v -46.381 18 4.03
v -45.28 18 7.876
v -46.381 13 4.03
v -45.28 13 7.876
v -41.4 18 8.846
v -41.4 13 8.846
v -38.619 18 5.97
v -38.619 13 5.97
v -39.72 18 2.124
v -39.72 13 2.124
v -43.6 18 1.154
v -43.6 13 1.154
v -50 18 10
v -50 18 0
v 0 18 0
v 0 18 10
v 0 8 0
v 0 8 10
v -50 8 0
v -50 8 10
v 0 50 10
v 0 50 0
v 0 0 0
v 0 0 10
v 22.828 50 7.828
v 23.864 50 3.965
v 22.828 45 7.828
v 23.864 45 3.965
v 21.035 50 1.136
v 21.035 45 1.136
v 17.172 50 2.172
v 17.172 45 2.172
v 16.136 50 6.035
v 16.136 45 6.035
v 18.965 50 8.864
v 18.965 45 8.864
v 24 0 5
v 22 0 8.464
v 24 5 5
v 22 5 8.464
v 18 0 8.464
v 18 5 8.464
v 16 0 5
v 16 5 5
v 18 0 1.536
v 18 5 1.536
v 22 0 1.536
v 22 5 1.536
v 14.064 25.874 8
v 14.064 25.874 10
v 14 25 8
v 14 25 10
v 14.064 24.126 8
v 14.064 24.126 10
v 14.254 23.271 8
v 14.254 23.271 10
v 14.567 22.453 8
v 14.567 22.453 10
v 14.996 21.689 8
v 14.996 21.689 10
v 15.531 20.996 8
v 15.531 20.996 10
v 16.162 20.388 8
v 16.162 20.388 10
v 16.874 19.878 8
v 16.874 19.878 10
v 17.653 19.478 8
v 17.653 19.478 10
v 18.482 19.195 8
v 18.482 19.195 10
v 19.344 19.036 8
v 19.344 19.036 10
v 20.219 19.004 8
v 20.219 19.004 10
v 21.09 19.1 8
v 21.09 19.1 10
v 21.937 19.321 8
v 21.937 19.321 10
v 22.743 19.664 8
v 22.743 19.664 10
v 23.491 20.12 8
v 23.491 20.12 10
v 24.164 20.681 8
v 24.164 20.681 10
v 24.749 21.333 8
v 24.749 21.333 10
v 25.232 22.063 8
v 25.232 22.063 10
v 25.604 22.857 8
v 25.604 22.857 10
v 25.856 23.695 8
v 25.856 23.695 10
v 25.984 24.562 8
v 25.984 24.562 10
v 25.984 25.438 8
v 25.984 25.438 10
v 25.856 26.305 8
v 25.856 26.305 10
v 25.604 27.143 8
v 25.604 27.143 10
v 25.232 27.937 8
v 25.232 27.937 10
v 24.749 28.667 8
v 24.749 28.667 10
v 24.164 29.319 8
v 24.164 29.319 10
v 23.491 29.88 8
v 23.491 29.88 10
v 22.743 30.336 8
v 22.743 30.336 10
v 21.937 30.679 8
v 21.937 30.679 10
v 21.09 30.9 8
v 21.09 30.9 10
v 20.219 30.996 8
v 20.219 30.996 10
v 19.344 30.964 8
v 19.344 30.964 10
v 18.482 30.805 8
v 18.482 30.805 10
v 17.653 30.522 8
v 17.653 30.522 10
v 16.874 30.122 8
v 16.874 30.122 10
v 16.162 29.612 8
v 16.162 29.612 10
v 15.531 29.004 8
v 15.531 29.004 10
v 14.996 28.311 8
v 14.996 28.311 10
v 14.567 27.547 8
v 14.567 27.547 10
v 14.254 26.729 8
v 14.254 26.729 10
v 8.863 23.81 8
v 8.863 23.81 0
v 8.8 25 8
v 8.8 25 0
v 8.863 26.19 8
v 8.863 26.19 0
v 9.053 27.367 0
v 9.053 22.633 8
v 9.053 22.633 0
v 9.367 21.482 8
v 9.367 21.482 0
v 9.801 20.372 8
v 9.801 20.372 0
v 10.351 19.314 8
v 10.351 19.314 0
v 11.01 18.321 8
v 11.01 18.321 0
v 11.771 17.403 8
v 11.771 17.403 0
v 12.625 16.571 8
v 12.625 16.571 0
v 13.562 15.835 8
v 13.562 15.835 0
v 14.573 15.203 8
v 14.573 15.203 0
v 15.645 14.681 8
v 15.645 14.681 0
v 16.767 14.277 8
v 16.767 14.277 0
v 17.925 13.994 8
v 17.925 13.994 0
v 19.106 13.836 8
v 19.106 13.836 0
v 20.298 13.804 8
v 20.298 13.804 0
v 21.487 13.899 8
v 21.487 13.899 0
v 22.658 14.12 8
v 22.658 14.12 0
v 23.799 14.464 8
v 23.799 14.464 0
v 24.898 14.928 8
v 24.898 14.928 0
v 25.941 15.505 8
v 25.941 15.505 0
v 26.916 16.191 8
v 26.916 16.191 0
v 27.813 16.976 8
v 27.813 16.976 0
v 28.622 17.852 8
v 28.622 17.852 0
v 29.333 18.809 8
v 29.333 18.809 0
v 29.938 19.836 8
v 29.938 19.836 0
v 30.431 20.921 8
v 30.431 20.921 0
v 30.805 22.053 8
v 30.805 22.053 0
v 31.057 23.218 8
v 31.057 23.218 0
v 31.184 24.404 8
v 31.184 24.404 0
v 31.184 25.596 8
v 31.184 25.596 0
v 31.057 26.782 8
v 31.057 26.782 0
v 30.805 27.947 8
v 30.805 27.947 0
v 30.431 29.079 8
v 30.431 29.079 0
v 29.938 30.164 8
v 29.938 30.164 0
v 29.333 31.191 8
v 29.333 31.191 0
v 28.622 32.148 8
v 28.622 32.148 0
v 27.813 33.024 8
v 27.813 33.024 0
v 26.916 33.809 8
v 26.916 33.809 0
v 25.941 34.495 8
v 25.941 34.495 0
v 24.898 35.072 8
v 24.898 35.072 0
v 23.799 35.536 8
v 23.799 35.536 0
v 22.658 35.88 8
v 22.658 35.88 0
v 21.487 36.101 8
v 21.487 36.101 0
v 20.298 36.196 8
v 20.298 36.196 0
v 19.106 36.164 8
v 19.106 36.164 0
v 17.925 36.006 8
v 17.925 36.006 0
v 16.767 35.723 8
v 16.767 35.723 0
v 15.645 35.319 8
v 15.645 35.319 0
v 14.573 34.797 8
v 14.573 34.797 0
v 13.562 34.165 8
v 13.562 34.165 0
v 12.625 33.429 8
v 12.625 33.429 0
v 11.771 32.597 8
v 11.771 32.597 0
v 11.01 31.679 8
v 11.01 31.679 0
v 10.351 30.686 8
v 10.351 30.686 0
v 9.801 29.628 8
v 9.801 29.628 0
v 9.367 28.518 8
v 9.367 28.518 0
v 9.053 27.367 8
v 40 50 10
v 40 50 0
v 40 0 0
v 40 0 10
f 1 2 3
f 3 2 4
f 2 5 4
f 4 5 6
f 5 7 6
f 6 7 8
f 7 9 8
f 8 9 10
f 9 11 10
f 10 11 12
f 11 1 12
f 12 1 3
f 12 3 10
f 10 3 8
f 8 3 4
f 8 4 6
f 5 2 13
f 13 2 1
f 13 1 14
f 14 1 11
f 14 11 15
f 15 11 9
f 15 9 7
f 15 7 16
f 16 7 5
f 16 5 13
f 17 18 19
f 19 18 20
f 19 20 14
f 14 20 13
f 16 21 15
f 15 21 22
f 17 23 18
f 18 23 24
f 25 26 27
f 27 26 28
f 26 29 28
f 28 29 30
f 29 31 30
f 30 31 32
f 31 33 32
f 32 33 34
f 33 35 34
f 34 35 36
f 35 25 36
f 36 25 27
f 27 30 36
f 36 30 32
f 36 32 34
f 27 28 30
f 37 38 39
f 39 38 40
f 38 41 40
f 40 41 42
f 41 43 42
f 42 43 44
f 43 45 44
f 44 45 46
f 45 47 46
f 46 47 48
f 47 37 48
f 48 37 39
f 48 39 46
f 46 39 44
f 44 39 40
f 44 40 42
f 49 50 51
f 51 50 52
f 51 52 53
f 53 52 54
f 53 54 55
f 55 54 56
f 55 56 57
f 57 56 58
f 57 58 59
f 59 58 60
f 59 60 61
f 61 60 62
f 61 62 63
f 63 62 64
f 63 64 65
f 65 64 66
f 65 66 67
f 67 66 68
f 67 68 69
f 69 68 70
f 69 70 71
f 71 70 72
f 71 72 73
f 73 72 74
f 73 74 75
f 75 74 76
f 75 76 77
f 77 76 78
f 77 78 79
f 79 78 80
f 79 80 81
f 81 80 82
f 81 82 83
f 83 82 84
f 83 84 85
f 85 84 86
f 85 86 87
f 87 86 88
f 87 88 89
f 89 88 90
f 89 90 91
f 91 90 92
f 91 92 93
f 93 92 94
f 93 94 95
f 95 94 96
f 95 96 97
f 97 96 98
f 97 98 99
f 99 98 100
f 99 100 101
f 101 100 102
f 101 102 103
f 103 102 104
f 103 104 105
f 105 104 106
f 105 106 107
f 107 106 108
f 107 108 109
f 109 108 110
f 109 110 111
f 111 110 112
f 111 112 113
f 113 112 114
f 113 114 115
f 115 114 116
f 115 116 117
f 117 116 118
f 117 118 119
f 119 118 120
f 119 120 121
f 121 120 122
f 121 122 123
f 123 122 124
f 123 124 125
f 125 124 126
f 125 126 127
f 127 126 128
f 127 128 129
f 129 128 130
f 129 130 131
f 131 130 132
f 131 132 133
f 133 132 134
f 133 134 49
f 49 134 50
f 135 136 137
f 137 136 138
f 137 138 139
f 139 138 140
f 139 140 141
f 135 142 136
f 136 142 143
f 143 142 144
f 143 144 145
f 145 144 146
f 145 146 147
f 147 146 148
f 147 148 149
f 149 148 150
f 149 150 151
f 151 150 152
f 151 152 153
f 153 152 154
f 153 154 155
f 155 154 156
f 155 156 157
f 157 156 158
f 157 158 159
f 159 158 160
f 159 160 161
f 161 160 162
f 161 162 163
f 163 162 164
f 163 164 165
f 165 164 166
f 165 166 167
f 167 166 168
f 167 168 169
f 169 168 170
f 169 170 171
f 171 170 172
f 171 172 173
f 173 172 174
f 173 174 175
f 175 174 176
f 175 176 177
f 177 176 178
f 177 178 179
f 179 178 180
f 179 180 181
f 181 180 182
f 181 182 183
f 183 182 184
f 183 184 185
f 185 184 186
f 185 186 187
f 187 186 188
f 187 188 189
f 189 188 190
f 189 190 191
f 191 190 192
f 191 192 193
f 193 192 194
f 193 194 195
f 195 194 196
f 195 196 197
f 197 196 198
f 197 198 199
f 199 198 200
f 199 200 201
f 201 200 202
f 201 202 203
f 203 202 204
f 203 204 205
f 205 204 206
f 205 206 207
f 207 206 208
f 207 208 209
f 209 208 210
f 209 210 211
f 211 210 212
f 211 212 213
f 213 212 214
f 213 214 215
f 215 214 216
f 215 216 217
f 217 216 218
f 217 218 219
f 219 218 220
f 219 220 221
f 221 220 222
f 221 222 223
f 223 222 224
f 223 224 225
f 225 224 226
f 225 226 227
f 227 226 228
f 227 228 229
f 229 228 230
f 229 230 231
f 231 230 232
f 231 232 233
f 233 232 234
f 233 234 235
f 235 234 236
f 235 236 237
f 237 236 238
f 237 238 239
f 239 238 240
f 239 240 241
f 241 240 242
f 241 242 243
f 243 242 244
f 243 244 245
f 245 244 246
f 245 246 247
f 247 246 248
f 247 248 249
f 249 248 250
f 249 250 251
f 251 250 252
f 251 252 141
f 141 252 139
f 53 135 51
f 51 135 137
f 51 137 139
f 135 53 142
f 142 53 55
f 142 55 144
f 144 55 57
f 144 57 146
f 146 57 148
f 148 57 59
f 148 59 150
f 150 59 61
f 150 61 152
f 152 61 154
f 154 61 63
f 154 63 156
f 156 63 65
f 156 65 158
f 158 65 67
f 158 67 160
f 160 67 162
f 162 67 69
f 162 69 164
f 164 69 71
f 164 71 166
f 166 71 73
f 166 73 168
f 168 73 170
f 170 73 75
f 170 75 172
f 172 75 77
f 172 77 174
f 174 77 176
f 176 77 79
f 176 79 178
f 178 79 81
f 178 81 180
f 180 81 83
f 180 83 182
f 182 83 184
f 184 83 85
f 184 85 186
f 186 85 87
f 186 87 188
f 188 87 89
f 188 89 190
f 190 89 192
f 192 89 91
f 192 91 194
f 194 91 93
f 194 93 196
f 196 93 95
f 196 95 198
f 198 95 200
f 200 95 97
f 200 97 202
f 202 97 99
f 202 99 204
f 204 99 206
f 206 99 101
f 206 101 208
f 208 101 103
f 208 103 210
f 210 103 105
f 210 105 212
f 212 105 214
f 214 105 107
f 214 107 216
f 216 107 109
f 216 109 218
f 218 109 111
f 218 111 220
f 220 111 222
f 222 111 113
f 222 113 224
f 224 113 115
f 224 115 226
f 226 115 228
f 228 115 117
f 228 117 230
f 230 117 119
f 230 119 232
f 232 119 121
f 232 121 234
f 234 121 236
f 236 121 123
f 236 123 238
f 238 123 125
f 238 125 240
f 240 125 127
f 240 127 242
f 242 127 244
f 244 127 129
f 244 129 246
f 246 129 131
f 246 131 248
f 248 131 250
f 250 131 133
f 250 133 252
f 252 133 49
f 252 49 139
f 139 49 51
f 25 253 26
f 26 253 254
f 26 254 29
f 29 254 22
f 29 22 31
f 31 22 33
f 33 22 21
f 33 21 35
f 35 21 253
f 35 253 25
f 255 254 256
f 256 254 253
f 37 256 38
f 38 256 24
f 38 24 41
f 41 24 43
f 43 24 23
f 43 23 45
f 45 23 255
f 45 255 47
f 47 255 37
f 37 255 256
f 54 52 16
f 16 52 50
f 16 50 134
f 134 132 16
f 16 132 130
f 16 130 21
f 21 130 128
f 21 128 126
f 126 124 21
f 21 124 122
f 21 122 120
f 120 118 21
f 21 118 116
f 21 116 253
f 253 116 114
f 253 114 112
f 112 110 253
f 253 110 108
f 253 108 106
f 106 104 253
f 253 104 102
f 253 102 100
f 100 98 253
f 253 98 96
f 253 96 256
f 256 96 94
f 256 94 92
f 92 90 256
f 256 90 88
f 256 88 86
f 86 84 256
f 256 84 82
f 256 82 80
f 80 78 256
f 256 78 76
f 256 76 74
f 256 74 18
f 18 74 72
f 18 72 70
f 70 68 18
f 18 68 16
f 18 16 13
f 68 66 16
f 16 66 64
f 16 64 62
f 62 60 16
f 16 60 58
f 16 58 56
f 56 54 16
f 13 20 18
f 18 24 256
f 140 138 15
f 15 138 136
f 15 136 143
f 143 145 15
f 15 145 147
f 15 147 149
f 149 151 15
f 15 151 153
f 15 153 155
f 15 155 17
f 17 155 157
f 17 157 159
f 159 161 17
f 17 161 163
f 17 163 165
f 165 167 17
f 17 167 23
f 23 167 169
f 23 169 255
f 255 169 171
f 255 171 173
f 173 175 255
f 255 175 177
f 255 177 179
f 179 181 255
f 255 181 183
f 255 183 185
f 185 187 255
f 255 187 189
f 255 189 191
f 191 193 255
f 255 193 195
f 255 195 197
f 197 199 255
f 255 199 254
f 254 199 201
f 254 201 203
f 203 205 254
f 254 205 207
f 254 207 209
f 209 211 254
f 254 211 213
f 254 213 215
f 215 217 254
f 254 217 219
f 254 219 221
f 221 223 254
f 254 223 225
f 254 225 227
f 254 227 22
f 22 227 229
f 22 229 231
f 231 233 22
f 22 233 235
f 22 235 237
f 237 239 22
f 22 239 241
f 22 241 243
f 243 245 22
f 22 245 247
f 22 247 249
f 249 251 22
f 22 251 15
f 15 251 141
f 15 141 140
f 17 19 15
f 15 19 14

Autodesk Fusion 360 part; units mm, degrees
sketch "Top" plane through (0, 0, 0) normal (0, 0, 1) x (1, 0, 0)
  line L0 (0, 0) -> (40, 0)
  line L1 (40, 0) -> (40, 50)
  line L2 (40, 50) -> (0, 50)
  line L3 (0, 50) -> (0, 0)
  circle A0 centre (20, 25) radius 11.2
  circle A1 centre (20, 25) radius 6
  dimension "d6" = 40
  dimension "d7" = 50
  dimension "d11" = 22.4
  dimension "d12" = 25
  dimension "d13" = 20
  dimension "d27" = 12
extrude "Extrude1" add sketch "Top" along normal blind 10 contours L0 L1 L2 L3 | A0 | A1
extrude "Extrude2" cut sketch "Top" along normal blind 8 contours A0 | A1
extrude "Extrude5" cut sketch "Top" along normal blind 110 contours A1
sketch "Sketch3" plane through (0, 0, 0) normal (0, -1, 0) x (1, 0, 0)
  line L0 (0, 0) -> (40, 0)
  line L1 (40, 0) -> (40, 10)
  line L2 (40, 10) -> (0, 10)
  line L3 (0, 10) -> (0, 0)
  line L4 (24, 5) -> (22, 8.4641)
  line L5 (22, 8.4641) -> (18, 8.4641)
  line L6 (18, 8.4641) -> (16, 5)
  line L7 (16, 5) -> (18, 1.5359)
  line L8 (18, 1.5359) -> (22, 1.5359)
  line L9 (22, 1.5359) -> (24, 5)
  point P0 (20, 5)
  dimension "d34" = 4
  dimension "d37" = 20
  dimension "d38" = 5
extrude "Extrude6" cut sketch "Sketch3" against normal blind 5 contours L4 L5 L6 L7 L8 L9
sketch "Sketch4" plane through (0, 50, 0) normal (0, 1, 0) x (-1, 0, 0)
  line L0 (-40, 0) -> (0, 0)
  line L1 (0, 0) -> (0, 10)
  line L2 (0, 10) -> (-40, 10)
  line L3 (-40, 10) -> (-40, 0)
  line L4 (-22.8284, 7.8284) -> (-23.8637, 3.9647)
  line L5 (-23.8637, 3.9647) -> (-21.0353, 1.1363)
  line L6 (-21.0353, 1.1363) -> (-17.1716, 2.1716)
  line L7 (-17.1716, 2.1716) -> (-16.1363, 6.0353)
  line L8 (-16.1363, 6.0353) -> (-18.9647, 8.8637)
  line L9 (-18.9647, 8.8637) -> (-22.8284, 7.8284)
  point P0 (-20, 5)
  dimension "d39" = 4
  dimension "d42" = 20
  dimension "d43" = 5
extrude "Extrude7" cut sketch "Sketch4" against normal blind 5 contours L4 L5 L6 L7 L8 L9
sketch "Sketch5" plane through (0, 0, 0) normal (-1, 0, 0) x (0, -1, 0)
  line L0 (-50, 0) -> (0, 0)
  line L1 (0, 0) -> (0, 10)
  line L2 (0, 10) -> (-50, 10)
  line L3 (-50, 10) -> (-50, 0)
  line L4 (-18, 10) -> (-8, 10)
  line L5 (-8, 10) -> (-8, 0)
  line L6 (-8, 0) -> (-18, 0)
  line L7 (-18, 0) -> (-18, 10)
  dimension "d50" = 10
  dimension "d51" = 10
  dimension "d52" = 32
extrude "Extrude8" add sketch "Sketch5" along normal blind 50 contours L0 L2 L4 L5 L6 L7
sketch "Sketch9" plane through (0, 18, 0) normal (0, 1, 0) x (-1, 0, 0)
  line L0 (0, 10) -> (0, 0)
  line L1 (0, 0) -> (50, 0)
  line L2 (50, 0) -> (50, 10)
  line L3 (50, 10) -> (0, 10)
  line L4 (46.3806, 4.0299) -> (45.2805, 7.8756)
  line L5 (45.2805, 7.8756) -> (41.3999, 8.8457)
  line L6 (41.3999, 8.8457) -> (38.6194, 5.9701)
  line L7 (38.6194, 5.9701) -> (39.7195, 2.1244)
  line L8 (39.7195, 2.1244) -> (43.6001, 1.1543)
  line L9 (43.6001, 1.1543) -> (46.3806, 4.0299)
  point P0 (42.5, 5)
  dimension "d79" = 4
  dimension "d80" = 7.5
  dimension "d81" = 5
extrude "Extrude12" cut sketch "Sketch9" against normal blind 5 contours L4 L5 L6 L7 L8 L9
equation "length = 50 mm"
equation "width = 40 mm"
equation "thickness = 10 mm"
equation "extra = 100 mm"
equation "fit_gap = 0.2 mm"
equation "d6 = width"
equation "d7 = length"
equation "d8 = thickness"
equation "big_bearing_outer_radius = 11.1 mm"
equation "d11 = ( big_bearing_outer_radius * 2 ) + fit_gap"
equation "d12 = length / 2"
equation "d13 = width / 2"
equation "d14 = thickness - 2 mm"
equation "big_bearing_inner_radius = ( 8 mm + 4 mm ) / 2"
equation "d27 = big_bearing_inner_radius * 2"
equation "d28 = thickness + extra"
equation "polygon_dowel_hole_side_length = 4 mm"
equation "polygon_dowel_hole_side_height = 5 mm"
equation "polygon_dowel_hole_big_distance = width / 2"
equation "polygon_dowel_hole_small_distance = thickness / 2"
equation "d34 = polygon_dowel_hole_side_length"
equation "d35 = -polygon_dowel_hole_side_height"
equation "d37 = polygon_dowel_hole_big_distance"
equation "d38 = polygon_dowel_hole_small_distance"
equation "d39 = polygon_dowel_hole_side_length"
equation "d40 = -polygon_dowel_hole_side_height"
equation "d42 = polygon_dowel_hole_big_distance"
equation "d43 = polygon_dowel_hole_small_distance"
equation "ackerman_bracket_length = 50 mm"
equation "ackerman_bracket_width = 10 mm"
equation "ackerman_bracket_big_distance = 4 * ( length - ackerman_bracket_width ) / 5"
equation "d50 = ackerman_bracket_width"
equation "d51 = ackerman_bracket_width"
equation "d52 = ackerman_bracket_big_distance"
equation "d53 = ackerman_bracket_length"
equation "ackerman_bracket_dowel_width = 6 mm"
equation "d79 = polygon_dowel_hole_side_length"
equation "d80 = polygon_dowel_hole_small_distance + ( polygon_dowel_hole_small_distance / 2 )"
equation "d81 = polygon_dowel_hole_small_distance"
equation "d82 = -polygon_dowel_hole_side_height"
